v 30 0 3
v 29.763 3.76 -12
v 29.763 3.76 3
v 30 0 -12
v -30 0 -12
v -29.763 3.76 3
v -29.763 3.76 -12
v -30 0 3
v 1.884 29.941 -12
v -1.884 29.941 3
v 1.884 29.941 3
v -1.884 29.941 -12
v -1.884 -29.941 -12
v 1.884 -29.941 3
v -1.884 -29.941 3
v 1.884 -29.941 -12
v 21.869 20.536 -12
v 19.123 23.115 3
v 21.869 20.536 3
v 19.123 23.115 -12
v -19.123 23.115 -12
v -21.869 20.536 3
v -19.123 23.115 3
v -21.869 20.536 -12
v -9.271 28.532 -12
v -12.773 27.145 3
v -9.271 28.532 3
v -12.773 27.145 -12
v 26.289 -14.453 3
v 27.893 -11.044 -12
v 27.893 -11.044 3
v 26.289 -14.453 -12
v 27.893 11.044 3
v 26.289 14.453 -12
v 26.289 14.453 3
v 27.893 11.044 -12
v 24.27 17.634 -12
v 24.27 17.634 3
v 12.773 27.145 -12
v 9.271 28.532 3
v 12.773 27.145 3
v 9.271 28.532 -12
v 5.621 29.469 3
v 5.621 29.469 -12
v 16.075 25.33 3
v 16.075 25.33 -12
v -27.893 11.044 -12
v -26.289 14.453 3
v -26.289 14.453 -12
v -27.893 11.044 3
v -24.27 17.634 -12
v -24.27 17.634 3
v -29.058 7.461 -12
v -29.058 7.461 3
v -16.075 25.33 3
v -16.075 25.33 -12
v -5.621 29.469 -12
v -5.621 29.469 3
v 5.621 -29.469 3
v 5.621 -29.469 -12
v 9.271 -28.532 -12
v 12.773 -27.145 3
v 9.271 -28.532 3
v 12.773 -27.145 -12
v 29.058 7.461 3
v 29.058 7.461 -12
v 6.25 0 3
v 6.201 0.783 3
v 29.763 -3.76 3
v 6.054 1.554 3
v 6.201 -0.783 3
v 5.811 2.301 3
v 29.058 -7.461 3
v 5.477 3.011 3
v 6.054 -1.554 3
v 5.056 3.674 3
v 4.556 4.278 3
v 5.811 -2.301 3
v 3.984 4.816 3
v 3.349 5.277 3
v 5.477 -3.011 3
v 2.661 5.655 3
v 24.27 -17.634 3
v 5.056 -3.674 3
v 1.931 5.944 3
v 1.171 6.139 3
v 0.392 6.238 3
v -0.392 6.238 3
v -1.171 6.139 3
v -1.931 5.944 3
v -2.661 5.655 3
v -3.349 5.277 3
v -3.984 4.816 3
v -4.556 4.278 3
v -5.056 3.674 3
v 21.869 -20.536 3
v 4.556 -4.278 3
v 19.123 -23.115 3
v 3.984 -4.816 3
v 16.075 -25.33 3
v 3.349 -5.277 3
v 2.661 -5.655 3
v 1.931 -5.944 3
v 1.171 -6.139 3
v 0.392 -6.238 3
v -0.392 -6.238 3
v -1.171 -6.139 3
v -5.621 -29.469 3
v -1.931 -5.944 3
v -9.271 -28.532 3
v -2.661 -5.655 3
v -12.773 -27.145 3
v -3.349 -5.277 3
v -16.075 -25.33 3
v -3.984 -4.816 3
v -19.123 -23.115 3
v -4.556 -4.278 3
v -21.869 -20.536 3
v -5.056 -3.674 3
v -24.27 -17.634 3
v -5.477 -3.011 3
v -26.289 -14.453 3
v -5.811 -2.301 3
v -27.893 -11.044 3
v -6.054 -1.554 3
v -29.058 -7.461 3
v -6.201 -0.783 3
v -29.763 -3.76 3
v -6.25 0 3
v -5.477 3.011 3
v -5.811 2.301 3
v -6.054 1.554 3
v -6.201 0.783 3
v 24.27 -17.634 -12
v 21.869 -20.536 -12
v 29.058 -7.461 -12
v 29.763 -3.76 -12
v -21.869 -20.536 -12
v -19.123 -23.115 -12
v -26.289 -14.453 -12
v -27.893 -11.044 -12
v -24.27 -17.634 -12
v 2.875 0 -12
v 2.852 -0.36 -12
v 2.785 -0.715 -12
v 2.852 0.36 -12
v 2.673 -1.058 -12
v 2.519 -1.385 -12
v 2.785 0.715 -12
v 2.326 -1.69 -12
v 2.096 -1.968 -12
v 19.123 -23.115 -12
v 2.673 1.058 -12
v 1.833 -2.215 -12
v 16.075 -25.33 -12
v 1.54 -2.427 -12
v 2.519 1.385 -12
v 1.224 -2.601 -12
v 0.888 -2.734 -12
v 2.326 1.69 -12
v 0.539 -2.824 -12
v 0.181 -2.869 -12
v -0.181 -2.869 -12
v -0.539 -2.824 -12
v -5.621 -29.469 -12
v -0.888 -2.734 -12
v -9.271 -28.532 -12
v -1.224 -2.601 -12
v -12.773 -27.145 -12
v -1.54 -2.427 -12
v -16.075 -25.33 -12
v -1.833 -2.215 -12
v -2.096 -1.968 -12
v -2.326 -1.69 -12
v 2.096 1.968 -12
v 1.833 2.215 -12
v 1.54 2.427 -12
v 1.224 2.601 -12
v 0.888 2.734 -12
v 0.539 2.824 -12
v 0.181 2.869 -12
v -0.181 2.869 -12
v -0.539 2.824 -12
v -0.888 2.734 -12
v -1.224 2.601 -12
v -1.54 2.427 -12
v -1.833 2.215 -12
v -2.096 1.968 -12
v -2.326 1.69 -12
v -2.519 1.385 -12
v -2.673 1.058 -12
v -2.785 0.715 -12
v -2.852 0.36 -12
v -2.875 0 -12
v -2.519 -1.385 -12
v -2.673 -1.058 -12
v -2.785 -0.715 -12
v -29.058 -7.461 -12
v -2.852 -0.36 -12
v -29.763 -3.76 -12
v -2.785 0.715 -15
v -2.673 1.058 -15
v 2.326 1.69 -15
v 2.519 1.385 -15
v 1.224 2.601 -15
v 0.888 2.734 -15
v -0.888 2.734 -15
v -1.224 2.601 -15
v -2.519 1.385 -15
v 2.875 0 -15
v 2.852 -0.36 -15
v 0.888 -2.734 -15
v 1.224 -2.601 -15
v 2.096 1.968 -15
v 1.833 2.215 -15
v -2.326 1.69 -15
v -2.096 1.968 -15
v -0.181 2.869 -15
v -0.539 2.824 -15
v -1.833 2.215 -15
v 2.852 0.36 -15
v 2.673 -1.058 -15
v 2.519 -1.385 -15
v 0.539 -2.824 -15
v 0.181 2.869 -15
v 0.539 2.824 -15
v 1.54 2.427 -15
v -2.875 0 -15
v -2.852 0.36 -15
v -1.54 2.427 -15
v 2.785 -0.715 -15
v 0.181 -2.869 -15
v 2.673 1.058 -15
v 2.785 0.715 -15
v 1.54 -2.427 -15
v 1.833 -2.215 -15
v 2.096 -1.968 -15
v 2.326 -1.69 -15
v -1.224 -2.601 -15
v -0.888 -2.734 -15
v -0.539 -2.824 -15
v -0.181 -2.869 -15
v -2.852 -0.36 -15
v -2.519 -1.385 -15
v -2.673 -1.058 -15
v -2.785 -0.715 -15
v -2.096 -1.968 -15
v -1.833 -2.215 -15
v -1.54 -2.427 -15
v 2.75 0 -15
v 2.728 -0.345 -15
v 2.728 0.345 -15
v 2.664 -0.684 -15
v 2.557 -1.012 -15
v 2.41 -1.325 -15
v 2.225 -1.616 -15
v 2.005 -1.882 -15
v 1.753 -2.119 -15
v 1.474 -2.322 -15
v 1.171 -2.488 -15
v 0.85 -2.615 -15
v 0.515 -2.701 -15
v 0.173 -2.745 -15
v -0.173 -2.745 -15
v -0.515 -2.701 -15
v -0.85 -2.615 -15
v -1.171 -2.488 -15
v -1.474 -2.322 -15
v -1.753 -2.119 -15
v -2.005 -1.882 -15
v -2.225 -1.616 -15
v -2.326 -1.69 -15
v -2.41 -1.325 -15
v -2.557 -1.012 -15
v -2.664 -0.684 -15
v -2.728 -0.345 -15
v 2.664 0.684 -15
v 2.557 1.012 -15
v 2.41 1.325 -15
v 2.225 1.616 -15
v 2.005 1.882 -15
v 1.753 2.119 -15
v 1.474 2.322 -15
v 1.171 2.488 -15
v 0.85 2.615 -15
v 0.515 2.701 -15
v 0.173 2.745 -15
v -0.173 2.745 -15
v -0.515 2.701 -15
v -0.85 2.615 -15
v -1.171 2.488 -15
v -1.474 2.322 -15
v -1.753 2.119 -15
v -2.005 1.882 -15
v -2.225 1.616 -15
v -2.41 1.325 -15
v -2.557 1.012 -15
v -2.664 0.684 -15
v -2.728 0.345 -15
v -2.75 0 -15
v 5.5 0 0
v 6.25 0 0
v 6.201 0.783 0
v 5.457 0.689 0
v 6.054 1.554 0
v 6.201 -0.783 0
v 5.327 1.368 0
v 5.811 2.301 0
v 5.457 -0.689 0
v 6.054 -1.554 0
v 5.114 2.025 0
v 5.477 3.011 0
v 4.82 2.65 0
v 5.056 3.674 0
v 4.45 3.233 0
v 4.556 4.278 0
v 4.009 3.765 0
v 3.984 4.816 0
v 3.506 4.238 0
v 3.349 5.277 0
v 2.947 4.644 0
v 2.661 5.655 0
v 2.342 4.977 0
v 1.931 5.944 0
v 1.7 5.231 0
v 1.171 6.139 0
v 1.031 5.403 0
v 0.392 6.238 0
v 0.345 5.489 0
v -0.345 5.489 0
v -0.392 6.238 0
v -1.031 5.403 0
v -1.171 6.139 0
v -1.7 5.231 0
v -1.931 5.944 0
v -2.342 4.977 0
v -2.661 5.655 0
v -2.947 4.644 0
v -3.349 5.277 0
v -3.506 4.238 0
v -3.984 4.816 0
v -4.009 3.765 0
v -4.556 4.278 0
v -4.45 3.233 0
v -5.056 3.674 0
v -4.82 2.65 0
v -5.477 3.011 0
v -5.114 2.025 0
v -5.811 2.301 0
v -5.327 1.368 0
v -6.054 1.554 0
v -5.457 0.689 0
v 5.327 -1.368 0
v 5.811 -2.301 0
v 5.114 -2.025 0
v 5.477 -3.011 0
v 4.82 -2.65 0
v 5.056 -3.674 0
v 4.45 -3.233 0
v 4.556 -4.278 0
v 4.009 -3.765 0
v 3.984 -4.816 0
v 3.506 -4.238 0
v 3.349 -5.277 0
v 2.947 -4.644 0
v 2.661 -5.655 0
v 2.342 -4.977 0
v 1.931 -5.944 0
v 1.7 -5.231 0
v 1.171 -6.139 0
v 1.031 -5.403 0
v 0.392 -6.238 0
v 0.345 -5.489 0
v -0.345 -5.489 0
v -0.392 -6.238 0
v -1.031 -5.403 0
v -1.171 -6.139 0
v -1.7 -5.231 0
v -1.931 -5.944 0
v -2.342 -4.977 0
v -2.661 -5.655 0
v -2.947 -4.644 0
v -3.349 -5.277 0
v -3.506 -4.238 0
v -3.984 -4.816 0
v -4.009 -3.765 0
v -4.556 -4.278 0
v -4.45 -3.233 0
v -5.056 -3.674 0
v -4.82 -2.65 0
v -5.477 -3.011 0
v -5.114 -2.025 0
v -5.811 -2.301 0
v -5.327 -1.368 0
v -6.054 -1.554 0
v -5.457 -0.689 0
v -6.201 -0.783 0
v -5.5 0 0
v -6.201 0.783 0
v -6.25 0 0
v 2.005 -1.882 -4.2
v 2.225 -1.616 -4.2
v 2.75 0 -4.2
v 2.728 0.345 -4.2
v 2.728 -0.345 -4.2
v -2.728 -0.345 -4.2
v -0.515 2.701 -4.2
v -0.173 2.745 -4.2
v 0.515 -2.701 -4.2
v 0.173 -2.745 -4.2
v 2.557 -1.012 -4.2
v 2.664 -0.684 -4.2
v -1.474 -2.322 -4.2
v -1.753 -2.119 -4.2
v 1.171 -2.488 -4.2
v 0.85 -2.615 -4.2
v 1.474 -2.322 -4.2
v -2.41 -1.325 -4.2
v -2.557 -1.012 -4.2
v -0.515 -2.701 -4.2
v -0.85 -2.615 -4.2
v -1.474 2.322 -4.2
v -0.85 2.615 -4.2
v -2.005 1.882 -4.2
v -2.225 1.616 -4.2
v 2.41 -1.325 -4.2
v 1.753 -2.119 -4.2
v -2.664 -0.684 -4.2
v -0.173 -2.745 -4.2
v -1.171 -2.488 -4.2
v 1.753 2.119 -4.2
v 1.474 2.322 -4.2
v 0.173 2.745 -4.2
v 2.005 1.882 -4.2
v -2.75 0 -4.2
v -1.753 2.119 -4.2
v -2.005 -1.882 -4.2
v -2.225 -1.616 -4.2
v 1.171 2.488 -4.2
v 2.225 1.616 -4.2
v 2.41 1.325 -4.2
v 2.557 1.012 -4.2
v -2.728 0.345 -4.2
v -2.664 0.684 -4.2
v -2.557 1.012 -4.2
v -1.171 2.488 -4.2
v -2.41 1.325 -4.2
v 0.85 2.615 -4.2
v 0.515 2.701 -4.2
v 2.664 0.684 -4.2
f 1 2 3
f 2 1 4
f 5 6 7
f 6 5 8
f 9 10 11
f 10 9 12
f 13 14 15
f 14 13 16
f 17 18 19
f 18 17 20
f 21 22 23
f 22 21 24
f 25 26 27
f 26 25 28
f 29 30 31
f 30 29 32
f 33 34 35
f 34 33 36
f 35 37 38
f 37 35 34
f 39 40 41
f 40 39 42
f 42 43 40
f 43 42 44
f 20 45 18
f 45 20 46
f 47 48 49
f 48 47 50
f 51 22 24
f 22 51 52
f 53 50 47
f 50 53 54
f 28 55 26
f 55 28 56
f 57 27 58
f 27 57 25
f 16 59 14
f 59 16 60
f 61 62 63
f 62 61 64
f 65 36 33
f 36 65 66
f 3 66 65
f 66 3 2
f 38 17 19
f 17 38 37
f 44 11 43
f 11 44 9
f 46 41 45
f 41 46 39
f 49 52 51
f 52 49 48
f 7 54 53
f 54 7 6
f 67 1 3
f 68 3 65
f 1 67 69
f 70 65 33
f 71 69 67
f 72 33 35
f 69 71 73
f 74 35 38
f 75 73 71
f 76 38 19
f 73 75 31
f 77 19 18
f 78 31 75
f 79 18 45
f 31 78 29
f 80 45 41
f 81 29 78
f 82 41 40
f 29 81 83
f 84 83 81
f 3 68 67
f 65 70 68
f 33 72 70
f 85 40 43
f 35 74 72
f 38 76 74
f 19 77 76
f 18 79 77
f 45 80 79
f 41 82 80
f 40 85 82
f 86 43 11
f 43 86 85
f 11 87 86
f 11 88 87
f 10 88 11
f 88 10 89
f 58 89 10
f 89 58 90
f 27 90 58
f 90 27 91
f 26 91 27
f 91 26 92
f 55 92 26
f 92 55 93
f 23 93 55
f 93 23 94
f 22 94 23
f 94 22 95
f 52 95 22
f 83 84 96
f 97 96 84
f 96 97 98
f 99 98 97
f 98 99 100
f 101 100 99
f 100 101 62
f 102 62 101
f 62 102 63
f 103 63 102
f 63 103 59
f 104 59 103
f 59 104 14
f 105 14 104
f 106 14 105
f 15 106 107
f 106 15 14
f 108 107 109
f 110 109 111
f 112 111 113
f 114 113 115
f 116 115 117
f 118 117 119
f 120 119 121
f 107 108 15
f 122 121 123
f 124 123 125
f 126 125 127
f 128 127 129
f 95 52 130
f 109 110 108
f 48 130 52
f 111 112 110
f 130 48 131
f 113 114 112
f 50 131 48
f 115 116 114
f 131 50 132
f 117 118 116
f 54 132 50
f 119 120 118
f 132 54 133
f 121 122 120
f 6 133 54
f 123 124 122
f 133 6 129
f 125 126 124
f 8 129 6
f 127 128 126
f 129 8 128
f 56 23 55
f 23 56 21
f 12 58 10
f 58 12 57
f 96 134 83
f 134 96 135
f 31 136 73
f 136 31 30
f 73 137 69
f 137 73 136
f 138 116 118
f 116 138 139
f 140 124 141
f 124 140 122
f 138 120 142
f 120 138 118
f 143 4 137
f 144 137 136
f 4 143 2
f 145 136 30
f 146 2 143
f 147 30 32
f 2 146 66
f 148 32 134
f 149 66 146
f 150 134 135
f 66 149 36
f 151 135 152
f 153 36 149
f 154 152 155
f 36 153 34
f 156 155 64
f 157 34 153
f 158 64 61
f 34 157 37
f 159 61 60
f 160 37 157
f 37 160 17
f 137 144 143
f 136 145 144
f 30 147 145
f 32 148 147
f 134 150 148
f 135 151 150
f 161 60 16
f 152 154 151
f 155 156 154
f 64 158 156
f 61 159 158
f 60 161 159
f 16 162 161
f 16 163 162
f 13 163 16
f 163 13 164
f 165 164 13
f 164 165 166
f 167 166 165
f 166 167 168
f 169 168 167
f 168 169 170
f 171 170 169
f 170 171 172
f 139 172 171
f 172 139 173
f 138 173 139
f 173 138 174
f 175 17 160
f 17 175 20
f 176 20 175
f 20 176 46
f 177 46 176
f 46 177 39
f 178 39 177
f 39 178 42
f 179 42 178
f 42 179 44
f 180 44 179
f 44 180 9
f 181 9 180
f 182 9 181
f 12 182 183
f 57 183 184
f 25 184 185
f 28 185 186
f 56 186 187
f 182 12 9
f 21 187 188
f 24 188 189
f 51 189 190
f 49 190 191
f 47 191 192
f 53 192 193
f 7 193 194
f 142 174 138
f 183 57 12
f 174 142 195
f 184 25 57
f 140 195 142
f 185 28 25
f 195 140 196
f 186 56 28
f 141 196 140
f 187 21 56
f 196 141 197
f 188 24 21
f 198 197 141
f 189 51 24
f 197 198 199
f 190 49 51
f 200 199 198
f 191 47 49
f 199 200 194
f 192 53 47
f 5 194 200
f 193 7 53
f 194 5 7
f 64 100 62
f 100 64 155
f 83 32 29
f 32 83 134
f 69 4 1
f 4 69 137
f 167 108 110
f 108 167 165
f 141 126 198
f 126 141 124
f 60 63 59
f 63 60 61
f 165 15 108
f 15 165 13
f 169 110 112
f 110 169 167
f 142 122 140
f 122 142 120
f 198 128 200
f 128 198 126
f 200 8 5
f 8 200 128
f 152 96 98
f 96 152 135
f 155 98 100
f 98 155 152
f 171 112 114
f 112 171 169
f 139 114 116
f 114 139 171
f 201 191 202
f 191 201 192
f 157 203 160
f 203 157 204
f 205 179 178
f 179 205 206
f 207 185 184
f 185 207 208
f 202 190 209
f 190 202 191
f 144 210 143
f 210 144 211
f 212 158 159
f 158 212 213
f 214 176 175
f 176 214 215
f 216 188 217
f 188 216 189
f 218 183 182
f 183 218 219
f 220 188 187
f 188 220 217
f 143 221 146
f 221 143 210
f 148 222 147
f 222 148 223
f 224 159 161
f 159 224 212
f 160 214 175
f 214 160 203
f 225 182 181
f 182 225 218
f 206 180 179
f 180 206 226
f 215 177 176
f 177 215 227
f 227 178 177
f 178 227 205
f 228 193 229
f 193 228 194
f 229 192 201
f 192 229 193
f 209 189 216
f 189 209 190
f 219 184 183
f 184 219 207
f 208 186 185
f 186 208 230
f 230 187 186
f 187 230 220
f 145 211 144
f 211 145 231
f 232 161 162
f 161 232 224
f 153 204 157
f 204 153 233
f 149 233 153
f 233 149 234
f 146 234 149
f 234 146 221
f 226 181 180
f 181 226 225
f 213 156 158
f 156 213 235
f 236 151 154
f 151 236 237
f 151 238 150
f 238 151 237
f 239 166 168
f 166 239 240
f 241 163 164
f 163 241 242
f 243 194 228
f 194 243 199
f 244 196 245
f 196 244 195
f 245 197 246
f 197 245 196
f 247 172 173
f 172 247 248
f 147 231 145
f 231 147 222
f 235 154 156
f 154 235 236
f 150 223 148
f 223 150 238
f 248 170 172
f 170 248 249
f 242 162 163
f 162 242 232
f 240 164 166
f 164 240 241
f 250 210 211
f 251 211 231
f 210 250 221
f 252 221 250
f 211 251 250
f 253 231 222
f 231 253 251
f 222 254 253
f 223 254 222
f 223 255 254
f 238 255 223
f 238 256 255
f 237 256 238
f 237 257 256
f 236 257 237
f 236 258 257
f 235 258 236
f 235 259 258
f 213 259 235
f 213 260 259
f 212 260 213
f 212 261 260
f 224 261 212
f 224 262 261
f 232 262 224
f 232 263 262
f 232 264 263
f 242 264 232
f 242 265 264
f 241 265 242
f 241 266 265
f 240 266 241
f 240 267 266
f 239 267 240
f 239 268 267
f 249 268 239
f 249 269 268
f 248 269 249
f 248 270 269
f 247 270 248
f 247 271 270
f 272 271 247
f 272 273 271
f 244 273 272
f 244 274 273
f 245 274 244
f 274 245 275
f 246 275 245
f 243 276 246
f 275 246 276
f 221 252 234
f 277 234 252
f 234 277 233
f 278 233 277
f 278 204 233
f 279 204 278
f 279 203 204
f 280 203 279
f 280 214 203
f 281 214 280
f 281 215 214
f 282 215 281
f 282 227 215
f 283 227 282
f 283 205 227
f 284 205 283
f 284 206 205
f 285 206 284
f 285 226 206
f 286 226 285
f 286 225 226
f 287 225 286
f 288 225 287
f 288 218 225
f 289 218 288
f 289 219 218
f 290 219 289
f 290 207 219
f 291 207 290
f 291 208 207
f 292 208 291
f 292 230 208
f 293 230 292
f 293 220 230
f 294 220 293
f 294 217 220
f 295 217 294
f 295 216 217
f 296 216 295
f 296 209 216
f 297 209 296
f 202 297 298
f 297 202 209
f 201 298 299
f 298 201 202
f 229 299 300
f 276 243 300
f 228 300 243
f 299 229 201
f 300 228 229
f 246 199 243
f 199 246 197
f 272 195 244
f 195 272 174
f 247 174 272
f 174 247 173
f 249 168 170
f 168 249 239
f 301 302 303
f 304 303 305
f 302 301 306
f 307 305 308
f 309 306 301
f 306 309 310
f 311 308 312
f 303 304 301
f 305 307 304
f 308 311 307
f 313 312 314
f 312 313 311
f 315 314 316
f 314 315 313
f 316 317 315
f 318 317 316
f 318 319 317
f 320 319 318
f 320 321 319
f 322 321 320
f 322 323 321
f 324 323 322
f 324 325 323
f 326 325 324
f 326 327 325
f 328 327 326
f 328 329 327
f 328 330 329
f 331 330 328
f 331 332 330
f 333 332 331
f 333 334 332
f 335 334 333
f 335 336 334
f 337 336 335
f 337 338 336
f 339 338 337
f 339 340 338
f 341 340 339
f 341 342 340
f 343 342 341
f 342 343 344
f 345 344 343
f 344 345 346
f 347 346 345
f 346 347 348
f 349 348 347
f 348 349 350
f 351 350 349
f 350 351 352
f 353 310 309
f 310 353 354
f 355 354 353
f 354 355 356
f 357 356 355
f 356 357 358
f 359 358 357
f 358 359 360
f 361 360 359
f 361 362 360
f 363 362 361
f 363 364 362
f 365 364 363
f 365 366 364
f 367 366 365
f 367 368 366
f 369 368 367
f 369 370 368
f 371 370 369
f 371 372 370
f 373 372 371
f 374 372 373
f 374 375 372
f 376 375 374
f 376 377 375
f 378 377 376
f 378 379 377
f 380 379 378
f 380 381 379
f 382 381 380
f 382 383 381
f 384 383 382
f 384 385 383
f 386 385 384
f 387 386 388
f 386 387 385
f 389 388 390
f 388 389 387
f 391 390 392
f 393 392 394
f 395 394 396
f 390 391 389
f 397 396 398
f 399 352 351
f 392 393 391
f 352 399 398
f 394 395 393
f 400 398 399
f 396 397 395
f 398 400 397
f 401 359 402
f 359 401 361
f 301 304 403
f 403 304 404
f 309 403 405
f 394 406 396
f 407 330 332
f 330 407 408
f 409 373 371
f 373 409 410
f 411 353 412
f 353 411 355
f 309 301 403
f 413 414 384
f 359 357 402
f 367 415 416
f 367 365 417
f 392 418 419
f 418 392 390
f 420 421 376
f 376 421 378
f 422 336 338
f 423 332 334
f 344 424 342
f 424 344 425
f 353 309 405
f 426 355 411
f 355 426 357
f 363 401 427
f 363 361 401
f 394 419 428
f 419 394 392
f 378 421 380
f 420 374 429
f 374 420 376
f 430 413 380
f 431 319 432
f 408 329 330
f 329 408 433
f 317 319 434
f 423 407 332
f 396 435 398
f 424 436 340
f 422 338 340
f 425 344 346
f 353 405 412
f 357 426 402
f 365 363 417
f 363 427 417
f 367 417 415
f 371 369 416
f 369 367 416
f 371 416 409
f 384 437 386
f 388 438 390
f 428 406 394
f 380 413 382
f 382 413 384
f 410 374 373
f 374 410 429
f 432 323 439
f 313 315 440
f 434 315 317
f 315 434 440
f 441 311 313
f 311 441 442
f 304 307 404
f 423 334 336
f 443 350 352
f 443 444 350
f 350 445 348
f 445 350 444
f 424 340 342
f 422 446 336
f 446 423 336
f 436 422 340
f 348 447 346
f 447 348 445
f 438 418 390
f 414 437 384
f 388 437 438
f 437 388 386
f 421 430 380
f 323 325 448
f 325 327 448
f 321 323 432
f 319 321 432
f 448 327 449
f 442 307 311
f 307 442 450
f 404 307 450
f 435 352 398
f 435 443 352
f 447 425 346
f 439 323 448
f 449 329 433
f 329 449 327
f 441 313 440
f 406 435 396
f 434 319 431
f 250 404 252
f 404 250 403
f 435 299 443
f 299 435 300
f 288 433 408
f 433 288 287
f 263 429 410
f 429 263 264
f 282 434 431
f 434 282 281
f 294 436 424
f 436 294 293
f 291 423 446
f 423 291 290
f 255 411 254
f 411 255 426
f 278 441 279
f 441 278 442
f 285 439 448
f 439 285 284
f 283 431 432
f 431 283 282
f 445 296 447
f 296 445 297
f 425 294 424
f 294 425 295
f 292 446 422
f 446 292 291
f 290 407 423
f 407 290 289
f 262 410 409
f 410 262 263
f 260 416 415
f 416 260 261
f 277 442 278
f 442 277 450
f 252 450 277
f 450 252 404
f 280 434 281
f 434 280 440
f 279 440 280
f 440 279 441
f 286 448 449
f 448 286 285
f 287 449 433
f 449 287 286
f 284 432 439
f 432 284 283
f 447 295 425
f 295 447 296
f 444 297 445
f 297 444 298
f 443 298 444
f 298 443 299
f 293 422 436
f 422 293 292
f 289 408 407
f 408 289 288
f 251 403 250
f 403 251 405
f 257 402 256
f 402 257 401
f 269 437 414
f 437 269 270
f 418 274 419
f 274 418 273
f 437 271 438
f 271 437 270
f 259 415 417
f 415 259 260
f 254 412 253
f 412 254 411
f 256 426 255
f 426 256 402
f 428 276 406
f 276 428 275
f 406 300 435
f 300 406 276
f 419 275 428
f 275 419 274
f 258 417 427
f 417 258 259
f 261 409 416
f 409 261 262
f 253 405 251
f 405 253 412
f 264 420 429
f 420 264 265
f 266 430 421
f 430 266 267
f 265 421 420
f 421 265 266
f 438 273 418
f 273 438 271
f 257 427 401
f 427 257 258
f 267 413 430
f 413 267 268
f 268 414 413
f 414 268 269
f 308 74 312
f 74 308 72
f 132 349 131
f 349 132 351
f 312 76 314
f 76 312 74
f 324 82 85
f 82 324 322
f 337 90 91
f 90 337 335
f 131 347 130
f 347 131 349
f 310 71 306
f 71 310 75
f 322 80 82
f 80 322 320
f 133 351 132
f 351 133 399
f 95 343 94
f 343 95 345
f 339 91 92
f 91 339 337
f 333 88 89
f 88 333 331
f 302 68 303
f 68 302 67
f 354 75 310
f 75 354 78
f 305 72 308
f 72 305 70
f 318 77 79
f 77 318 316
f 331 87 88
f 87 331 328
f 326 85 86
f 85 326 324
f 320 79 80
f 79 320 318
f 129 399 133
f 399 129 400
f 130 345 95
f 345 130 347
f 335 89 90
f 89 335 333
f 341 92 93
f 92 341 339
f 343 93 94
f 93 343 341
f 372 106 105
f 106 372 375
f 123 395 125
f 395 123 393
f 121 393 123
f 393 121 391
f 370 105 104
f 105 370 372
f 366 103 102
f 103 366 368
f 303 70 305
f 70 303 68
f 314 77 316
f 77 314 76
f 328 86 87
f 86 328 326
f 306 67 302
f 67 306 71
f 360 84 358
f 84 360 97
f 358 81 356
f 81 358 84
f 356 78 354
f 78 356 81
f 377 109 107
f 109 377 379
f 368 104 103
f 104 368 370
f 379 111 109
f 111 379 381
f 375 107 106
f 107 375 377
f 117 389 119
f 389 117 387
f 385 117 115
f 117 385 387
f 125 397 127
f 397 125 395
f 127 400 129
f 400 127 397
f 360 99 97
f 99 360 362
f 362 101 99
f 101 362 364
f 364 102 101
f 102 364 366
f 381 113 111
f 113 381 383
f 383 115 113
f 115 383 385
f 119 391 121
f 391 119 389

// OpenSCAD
$fn = 50;


difference() {
	union() {
		translate(v = [0, 0, -12.0000000000]) {
			cylinder(h = 15, r = 30.0000000000);
		}
		#translate(v = [0, 0, -15.0000000000]) {
			cylinder(h = 15, r = 2.8750000000);
		}
	}
	union() {
		translate(v = [0, 0, 0]) {
			rotate(a = [0, 0, 0]) {
				difference() {
					union() {
						translate(v = [0, 0, -15.0000000000]) {
							cylinder(h = 15, r = 2.2500000000);
						}
						translate(v = [0, 0, -4.2000000000]) {
							cylinder(h = 4.2000000000, r1 = 2.7500000000, r2 = 5.5000000000);
						}
						translate(v = [0, 0, -15.0000000000]) {
							cylinder(h = 15, r = 2.7500000000);
						}
						translate(v = [0, 0, -15.0000000000]) {
							cylinder(h = 15, r = 2.2500000000);
						}
					}
					union();
				}
			}
		}
		#cylinder(h = 3, r = 6.2500000000);
	}
}
